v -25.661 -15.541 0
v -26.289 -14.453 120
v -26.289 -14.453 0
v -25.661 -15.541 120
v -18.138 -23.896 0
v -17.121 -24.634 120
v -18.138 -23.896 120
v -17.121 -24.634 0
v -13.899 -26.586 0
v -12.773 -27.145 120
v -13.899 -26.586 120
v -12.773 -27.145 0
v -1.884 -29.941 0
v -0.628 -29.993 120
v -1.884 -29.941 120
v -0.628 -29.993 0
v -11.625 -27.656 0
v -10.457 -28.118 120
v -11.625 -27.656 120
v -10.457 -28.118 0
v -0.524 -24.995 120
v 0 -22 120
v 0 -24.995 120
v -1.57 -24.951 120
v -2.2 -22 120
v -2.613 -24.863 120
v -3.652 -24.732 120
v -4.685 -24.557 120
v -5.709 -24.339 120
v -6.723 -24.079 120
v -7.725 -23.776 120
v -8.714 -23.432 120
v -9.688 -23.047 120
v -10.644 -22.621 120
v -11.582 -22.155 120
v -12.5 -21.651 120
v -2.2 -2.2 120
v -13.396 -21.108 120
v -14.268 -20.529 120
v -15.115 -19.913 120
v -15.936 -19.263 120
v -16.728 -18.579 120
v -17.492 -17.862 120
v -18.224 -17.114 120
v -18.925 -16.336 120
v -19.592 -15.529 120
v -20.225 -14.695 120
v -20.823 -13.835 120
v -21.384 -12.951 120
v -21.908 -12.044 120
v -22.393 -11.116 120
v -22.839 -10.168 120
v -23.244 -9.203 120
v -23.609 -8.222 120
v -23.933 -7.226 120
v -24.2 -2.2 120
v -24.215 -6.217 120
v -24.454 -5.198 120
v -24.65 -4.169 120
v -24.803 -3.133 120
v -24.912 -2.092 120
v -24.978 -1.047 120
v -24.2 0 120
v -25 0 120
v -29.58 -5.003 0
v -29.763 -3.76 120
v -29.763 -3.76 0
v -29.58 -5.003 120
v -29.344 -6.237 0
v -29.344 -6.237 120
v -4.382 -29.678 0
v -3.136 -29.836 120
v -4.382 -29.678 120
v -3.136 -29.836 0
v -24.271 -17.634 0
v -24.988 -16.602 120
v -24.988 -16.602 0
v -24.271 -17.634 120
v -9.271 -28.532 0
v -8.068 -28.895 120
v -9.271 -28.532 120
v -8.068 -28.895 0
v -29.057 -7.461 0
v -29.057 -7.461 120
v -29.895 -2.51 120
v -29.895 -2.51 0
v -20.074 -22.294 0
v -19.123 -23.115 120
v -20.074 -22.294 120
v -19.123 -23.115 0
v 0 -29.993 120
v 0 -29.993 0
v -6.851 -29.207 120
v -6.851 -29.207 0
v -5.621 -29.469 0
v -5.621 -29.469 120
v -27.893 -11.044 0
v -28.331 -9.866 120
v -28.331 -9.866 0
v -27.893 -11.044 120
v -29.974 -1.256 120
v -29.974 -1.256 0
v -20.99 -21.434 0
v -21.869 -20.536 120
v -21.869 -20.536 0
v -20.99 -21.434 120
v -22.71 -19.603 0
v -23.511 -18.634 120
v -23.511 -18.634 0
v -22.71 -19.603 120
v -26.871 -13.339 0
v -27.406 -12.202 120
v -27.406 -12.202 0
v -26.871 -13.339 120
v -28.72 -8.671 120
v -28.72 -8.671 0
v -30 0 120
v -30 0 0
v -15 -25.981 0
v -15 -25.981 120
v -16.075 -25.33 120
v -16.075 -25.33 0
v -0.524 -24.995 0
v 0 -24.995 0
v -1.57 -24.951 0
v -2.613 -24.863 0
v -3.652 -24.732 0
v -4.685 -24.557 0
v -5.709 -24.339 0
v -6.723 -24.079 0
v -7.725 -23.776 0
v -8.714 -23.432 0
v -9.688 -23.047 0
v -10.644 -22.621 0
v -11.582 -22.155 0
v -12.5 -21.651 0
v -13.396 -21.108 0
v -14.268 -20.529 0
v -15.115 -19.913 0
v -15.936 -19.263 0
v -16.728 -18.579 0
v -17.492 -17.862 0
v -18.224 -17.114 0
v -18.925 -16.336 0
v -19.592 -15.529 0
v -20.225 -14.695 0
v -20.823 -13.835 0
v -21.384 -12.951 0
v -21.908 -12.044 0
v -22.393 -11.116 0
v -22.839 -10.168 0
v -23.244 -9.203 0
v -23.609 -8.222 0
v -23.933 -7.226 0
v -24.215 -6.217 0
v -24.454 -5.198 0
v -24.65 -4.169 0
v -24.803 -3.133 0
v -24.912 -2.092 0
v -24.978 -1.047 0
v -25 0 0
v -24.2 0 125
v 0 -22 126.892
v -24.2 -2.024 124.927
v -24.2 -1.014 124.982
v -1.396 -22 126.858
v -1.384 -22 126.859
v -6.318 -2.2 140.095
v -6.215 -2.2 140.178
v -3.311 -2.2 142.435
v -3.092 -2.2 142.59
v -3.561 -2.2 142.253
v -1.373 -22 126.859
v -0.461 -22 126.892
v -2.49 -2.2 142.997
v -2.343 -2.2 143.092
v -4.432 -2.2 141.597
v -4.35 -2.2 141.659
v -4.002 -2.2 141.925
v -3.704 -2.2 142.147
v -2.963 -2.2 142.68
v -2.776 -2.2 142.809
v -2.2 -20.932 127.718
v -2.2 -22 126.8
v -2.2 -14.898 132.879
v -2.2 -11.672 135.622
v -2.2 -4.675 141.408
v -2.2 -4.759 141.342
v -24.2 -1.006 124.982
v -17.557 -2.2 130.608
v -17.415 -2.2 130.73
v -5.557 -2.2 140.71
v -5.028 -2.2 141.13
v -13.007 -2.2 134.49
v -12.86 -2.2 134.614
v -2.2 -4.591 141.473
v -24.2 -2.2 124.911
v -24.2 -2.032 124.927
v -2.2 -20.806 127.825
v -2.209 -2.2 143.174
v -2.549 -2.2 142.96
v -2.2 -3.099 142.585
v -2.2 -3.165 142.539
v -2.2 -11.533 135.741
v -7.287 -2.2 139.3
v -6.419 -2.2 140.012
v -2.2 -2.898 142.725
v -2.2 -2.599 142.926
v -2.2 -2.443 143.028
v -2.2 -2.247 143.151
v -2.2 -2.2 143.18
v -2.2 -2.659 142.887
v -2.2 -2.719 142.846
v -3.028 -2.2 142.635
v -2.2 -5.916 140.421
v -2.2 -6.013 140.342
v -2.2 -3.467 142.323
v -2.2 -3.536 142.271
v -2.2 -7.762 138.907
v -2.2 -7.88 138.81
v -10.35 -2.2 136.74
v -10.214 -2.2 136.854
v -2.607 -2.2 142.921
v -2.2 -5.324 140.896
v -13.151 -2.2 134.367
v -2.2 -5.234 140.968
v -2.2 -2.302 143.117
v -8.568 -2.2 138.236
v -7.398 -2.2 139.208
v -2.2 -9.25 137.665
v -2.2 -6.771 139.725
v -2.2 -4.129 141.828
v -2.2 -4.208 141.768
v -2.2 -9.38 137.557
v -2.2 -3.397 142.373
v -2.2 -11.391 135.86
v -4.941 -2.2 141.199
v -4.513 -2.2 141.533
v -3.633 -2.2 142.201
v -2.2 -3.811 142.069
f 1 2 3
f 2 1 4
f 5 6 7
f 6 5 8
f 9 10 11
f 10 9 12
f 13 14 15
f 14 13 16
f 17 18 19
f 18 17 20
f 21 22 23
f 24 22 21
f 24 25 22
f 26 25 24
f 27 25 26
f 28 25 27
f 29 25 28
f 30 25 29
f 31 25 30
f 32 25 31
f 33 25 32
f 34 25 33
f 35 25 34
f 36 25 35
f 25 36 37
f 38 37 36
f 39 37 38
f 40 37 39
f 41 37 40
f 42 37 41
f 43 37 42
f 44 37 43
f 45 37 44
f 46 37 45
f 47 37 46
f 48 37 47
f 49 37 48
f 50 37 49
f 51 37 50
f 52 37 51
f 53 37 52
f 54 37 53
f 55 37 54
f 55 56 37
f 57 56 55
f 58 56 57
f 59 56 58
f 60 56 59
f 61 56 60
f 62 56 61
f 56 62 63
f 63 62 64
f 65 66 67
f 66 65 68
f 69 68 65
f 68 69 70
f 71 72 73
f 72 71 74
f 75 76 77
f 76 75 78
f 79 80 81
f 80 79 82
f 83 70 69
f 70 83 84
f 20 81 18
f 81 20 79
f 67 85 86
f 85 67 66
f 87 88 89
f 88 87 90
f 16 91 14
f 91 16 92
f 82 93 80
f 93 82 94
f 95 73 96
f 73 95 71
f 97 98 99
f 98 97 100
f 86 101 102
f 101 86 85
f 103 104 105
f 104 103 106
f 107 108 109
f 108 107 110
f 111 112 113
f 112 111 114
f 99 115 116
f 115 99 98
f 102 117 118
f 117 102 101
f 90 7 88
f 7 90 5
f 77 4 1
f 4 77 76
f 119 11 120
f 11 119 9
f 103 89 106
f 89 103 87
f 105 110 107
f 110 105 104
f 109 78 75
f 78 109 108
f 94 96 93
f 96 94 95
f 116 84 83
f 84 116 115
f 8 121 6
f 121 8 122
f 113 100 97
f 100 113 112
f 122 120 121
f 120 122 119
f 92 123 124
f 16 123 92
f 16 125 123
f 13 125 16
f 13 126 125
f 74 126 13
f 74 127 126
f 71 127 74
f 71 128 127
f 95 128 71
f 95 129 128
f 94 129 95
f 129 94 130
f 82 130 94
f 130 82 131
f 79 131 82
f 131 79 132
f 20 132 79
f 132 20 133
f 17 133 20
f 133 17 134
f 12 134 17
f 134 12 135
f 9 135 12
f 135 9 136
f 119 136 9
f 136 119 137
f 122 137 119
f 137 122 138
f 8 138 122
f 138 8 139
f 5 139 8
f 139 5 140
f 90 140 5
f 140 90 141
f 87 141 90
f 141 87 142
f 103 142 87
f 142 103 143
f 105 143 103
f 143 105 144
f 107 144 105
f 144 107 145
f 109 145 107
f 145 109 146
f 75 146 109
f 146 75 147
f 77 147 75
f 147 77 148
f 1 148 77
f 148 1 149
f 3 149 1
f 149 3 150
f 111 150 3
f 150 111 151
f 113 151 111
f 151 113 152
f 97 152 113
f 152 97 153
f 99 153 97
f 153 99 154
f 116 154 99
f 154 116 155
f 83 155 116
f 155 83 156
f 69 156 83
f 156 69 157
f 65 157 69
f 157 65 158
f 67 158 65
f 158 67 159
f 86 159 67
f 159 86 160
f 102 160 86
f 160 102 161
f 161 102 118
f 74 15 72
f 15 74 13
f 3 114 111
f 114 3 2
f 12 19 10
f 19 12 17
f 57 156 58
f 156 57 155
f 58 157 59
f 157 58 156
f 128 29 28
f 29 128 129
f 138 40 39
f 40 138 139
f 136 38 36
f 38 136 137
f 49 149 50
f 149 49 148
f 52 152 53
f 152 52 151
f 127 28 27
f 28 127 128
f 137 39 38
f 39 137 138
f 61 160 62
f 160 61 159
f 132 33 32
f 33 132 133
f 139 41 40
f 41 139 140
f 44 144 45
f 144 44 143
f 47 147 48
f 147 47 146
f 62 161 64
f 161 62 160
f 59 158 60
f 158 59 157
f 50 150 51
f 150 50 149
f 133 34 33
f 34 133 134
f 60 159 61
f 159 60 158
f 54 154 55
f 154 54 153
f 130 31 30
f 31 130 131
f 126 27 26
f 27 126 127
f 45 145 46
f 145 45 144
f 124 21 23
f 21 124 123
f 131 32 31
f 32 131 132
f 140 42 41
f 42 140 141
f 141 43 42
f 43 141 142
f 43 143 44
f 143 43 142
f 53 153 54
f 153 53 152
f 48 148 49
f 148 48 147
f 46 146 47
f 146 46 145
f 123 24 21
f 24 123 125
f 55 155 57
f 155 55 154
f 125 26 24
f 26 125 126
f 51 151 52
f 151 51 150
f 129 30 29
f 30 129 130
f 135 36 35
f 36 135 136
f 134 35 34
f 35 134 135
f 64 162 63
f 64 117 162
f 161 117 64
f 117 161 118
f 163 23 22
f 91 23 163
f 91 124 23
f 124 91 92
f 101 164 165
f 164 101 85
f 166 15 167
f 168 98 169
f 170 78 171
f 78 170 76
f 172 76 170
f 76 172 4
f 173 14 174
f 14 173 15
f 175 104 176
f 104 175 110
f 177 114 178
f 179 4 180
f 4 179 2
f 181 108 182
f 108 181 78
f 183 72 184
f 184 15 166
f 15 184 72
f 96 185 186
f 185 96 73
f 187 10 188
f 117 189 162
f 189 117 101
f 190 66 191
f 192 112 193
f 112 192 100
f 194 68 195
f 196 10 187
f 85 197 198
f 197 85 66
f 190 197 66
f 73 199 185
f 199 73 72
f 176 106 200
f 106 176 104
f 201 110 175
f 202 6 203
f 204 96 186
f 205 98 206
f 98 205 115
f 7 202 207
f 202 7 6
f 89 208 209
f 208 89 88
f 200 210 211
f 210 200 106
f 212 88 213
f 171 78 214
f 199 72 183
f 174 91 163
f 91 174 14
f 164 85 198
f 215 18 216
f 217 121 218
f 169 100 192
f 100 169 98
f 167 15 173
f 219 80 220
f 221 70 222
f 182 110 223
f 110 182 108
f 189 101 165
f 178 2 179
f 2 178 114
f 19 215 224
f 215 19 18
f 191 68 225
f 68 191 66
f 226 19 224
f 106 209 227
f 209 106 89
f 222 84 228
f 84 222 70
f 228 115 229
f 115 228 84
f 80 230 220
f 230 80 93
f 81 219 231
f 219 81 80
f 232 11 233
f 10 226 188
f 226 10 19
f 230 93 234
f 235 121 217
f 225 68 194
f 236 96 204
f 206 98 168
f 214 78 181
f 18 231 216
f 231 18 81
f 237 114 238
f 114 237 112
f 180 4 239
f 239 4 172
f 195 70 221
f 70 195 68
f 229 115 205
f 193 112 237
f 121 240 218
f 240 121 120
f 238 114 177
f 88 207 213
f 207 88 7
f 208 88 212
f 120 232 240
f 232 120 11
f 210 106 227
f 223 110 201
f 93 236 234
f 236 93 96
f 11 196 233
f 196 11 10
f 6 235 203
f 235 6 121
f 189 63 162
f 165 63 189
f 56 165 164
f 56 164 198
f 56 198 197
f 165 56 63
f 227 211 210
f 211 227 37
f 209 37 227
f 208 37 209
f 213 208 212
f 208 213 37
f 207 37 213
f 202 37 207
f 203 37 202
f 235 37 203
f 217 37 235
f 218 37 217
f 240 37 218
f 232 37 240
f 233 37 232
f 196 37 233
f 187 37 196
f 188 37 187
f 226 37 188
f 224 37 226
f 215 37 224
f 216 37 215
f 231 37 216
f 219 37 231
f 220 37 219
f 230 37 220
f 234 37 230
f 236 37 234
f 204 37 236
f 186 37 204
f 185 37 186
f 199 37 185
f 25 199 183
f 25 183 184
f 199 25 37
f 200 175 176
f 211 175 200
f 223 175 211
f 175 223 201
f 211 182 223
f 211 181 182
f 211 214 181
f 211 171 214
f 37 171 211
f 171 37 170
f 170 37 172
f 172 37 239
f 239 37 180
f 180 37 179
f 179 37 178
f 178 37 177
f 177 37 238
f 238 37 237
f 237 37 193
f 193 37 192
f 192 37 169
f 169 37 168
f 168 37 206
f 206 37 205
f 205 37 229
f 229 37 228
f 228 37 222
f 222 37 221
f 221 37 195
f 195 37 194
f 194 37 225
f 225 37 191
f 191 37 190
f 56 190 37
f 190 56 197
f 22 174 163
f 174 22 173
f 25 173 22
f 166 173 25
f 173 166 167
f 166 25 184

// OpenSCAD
$fn = 150;
OuterRadius = 30; //must be bigger than GlueArea
WallWidth = 2;
GlueArea = 5;
PillarHeight = 120;
CapHeight = 25;


pillar(OuterRadius, WallWidth, GlueArea, PillarHeight);
cap(PillarHeight, CapHeight, OuterRadius);



module pillar(outerRadius, width, glueLength, height)
{

difference()//diff 1
    {
    cylinder(height,  outerRadius, outerRadius,false);
            
    cylinder(height,  outerRadius-glueLength, outerRadius-glueLength,false);
        translate([-outerRadius,0,0])cube([outerRadius*2,outerRadius,height]);
        translate([0,-outerRadius,0])cube([outerRadius,outerRadius,height]);
    }//diff 1
    
    
}

module cap(startHeight, capHeight, outerRadius)
{
    
    difference()
    {
    translate([0,0,startHeight])cylinder(capHeight, outerRadius, false);
    
        translate([-outerRadius,0,startHeight])cube([outerRadius*2,outerRadius,capHeight]);
        translate([0,-outerRadius,startHeight])cube([outerRadius,outerRadius,capHeight]);
       translate([-2.2,0,startHeight])rotate([0,0,-180])cube([22,2.2,capHeight]);
    translate([-2.2,0,startHeight])rotate([0,0,-90])cube([22,2.2,capHeight]);
       //2.5 is with safety the width of the sheet metal
       //22 is with safety the size of the L shape 
    }
    
    
}
